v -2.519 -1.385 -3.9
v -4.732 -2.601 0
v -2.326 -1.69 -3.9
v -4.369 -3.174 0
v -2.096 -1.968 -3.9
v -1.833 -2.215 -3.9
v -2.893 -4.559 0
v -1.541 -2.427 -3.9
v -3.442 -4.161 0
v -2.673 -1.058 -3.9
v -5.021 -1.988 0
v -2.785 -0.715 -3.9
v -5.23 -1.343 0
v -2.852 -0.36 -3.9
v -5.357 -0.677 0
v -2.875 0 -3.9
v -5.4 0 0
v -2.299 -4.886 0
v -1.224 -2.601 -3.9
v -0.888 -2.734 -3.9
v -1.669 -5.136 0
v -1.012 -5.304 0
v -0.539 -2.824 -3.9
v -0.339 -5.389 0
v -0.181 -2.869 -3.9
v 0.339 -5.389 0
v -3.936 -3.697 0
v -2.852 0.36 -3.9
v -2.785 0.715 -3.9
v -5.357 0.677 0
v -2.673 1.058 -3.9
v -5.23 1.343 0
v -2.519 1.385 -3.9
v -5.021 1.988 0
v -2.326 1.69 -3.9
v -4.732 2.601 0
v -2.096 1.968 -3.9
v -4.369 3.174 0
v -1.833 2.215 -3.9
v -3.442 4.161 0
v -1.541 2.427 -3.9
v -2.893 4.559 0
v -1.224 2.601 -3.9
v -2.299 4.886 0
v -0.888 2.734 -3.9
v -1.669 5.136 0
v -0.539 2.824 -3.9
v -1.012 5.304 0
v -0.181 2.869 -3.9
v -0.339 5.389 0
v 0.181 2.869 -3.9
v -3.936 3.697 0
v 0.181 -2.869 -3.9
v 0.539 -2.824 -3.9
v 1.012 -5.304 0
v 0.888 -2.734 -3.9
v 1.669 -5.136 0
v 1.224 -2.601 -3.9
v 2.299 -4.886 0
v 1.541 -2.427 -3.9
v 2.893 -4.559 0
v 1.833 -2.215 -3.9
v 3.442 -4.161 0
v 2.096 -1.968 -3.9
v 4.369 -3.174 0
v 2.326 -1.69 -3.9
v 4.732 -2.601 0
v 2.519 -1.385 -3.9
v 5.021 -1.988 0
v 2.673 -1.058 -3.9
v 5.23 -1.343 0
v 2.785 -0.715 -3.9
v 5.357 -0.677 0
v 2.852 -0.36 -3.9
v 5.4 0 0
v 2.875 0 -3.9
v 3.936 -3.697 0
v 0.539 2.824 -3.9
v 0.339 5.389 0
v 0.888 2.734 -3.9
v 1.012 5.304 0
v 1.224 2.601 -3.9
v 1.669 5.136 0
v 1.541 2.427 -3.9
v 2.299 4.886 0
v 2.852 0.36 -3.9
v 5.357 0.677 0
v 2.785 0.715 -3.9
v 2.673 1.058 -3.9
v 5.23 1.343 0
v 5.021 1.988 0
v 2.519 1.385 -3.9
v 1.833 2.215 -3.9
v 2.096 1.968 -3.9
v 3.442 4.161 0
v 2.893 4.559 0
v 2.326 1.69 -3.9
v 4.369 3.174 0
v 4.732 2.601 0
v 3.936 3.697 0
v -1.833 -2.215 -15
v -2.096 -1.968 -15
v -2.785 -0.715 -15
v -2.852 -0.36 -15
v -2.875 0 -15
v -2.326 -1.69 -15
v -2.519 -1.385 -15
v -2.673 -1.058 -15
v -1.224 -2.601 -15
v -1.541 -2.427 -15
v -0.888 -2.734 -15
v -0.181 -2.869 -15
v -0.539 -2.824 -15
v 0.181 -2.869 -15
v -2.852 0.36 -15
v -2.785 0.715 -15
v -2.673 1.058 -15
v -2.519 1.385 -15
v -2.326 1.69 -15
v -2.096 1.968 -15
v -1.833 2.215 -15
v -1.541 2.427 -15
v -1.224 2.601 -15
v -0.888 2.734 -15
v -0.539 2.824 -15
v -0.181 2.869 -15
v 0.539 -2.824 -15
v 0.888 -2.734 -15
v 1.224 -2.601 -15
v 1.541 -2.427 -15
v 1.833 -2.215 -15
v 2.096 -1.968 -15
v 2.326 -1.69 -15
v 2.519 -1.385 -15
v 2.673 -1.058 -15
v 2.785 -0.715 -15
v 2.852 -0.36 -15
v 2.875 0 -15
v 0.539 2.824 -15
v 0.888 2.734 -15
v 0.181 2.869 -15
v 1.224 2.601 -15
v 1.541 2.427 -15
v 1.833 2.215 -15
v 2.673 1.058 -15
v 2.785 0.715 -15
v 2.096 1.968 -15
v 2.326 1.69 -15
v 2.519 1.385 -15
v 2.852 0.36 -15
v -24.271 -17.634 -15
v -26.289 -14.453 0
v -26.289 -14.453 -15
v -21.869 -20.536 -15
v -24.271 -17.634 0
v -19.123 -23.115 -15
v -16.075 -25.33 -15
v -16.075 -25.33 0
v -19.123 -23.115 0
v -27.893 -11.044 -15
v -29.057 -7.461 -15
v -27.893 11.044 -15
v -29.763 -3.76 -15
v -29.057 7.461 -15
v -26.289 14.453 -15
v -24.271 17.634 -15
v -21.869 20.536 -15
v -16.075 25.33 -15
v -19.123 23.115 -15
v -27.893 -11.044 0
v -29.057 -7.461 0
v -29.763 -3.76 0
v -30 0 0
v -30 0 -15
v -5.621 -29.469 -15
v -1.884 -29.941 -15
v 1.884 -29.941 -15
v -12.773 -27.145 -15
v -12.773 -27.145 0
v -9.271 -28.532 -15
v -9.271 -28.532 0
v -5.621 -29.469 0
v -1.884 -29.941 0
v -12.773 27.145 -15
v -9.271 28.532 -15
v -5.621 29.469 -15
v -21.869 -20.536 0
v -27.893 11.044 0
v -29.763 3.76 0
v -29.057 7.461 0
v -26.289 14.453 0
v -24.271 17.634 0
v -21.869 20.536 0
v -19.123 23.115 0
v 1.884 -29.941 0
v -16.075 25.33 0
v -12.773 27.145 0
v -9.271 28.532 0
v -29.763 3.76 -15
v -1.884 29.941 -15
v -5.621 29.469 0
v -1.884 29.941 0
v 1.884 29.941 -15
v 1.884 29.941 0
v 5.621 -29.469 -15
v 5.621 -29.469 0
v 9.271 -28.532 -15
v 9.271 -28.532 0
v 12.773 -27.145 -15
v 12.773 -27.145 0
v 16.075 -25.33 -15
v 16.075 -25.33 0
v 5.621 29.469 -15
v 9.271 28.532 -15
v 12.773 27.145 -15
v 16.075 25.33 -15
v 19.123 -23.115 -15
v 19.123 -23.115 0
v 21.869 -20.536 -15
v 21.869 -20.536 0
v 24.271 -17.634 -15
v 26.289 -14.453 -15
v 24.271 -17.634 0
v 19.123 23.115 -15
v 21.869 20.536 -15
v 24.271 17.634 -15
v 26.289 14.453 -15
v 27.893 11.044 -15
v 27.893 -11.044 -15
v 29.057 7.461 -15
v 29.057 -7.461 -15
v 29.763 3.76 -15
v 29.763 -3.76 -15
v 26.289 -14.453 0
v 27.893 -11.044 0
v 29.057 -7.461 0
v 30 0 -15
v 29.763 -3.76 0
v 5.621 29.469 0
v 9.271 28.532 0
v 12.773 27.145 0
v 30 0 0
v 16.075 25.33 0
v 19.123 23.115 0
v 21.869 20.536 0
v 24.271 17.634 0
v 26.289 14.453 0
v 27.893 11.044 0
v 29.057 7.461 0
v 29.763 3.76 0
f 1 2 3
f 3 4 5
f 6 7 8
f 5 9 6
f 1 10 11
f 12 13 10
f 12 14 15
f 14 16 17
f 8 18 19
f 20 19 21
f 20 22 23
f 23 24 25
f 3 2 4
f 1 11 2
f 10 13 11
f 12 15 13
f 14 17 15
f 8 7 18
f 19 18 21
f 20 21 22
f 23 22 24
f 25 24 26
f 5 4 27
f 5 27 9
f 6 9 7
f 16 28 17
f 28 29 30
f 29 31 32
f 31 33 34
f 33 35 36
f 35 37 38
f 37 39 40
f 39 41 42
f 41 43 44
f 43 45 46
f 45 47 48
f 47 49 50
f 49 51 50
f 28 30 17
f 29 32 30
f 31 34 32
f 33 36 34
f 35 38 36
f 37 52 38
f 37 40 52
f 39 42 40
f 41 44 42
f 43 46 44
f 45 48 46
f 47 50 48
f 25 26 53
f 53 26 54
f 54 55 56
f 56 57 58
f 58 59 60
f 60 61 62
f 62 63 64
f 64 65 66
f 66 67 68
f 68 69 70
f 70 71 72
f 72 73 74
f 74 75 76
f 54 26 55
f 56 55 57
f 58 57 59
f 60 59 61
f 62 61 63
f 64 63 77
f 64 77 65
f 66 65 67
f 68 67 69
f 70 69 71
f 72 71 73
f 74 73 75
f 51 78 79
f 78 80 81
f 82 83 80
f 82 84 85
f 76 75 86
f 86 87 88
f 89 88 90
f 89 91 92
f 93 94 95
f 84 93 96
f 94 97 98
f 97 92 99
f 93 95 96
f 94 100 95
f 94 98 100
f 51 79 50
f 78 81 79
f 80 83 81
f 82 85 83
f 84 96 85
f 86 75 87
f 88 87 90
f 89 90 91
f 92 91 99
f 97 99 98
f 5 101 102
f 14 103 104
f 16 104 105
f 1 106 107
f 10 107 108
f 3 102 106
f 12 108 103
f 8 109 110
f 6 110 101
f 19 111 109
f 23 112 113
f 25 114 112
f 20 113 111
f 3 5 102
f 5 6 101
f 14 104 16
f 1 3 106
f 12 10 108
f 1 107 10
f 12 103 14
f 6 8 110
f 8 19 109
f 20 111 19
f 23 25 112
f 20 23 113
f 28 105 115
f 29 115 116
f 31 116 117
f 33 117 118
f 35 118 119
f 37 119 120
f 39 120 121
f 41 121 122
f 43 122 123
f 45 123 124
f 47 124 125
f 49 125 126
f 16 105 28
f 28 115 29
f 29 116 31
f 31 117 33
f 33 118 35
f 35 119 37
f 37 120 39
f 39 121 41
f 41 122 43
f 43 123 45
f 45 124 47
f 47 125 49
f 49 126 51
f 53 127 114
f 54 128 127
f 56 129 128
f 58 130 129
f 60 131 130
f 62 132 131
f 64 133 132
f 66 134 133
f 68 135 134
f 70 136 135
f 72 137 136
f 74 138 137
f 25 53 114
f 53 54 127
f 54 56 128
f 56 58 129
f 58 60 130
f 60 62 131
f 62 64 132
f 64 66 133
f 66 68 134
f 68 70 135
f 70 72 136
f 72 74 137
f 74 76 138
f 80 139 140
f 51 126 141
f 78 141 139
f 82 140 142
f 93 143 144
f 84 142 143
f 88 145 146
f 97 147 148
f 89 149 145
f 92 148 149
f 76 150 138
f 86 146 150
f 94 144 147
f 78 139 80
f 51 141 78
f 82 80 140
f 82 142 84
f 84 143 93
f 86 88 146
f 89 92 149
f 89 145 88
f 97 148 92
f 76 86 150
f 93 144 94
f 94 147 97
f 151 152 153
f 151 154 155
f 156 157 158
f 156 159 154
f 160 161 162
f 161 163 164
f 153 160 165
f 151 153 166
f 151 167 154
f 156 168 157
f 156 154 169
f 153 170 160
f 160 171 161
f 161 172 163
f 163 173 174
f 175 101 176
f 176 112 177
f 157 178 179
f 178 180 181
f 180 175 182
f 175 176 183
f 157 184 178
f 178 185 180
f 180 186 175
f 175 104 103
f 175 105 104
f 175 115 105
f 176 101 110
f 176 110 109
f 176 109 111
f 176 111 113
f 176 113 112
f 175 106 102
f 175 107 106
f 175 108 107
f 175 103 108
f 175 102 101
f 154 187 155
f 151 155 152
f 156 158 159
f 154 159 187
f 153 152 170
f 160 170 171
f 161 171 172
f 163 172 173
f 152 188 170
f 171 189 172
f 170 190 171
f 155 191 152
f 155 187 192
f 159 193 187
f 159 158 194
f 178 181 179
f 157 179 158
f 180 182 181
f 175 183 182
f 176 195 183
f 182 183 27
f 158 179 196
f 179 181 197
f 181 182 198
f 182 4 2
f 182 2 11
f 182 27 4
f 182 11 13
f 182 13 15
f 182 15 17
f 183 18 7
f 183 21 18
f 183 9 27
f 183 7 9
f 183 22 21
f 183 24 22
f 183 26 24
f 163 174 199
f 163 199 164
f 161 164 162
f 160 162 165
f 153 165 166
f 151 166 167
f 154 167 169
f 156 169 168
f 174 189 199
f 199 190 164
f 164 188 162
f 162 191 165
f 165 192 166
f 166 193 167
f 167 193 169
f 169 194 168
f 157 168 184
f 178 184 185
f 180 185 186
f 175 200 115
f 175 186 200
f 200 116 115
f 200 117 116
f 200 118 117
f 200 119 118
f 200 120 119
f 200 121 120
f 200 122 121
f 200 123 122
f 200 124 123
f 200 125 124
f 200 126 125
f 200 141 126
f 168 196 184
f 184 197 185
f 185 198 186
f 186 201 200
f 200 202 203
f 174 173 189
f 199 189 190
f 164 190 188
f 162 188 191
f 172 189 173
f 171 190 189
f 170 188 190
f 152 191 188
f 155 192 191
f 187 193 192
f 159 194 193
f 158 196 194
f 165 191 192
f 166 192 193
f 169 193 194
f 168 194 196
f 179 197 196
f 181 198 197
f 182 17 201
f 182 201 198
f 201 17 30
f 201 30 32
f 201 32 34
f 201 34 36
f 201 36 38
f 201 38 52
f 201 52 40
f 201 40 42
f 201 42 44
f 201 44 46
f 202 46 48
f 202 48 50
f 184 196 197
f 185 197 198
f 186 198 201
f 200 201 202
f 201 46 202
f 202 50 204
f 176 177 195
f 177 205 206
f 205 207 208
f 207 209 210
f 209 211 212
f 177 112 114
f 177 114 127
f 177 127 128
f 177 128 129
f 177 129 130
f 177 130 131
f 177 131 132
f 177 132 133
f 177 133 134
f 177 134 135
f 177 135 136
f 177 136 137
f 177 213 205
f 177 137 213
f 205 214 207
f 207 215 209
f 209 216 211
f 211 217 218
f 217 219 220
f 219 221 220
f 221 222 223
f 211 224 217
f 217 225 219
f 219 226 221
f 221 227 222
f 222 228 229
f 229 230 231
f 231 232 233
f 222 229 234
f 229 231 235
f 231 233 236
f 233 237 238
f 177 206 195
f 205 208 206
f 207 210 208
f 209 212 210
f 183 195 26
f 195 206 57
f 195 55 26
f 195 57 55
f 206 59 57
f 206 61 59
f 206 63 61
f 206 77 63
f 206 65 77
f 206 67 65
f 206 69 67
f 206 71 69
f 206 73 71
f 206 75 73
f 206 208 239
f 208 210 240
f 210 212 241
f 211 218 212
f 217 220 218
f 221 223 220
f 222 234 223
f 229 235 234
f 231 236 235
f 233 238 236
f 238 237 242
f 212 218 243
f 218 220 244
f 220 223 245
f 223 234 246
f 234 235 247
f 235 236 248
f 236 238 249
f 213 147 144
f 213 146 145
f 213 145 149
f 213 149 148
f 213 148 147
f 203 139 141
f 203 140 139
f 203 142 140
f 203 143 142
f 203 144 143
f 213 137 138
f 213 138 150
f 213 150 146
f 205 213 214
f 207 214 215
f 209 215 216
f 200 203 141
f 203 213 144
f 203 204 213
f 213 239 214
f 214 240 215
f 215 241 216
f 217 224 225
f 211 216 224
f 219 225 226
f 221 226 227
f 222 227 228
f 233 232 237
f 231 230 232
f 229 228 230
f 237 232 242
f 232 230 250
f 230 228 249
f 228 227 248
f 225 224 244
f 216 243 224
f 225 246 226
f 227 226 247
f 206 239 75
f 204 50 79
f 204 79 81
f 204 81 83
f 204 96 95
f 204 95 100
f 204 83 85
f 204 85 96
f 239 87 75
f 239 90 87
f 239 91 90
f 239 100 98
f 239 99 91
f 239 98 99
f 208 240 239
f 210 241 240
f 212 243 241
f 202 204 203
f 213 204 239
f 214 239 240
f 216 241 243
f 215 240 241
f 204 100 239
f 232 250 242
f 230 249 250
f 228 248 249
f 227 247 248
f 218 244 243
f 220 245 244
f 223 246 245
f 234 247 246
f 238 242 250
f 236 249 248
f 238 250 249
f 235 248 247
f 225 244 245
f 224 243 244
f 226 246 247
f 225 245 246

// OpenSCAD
$fn = 50;


difference() {
	union() {
		translate(v = [0, 0, -15.0000000000]) {
			cylinder(h = 15, r = 30.0000000000);
		}
	}
	union() {
		translate(v = [0, 0, 0]) {
			rotate(a = [0, 0, 0]) {
				difference() {
					union() {
						translate(v = [0, 0, -18.0000000000]) {
							cylinder(h = 18, r = 2.6000000000);
						}
						translate(v = [0, 0, -3.9000000000]) {
							cylinder(h = 3.9000000000, r1 = 2.8750000000, r2 = 5.4000000000);
						}
						translate(v = [0, 0, -18.0000000000]) {
							cylinder(h = 18, r = 2.8750000000);
						}
						translate(v = [0, 0, -18.0000000000]) {
							cylinder(h = 18, r = 2.6000000000);
						}
					}
					union();
				}
			}
		}
	}
}
